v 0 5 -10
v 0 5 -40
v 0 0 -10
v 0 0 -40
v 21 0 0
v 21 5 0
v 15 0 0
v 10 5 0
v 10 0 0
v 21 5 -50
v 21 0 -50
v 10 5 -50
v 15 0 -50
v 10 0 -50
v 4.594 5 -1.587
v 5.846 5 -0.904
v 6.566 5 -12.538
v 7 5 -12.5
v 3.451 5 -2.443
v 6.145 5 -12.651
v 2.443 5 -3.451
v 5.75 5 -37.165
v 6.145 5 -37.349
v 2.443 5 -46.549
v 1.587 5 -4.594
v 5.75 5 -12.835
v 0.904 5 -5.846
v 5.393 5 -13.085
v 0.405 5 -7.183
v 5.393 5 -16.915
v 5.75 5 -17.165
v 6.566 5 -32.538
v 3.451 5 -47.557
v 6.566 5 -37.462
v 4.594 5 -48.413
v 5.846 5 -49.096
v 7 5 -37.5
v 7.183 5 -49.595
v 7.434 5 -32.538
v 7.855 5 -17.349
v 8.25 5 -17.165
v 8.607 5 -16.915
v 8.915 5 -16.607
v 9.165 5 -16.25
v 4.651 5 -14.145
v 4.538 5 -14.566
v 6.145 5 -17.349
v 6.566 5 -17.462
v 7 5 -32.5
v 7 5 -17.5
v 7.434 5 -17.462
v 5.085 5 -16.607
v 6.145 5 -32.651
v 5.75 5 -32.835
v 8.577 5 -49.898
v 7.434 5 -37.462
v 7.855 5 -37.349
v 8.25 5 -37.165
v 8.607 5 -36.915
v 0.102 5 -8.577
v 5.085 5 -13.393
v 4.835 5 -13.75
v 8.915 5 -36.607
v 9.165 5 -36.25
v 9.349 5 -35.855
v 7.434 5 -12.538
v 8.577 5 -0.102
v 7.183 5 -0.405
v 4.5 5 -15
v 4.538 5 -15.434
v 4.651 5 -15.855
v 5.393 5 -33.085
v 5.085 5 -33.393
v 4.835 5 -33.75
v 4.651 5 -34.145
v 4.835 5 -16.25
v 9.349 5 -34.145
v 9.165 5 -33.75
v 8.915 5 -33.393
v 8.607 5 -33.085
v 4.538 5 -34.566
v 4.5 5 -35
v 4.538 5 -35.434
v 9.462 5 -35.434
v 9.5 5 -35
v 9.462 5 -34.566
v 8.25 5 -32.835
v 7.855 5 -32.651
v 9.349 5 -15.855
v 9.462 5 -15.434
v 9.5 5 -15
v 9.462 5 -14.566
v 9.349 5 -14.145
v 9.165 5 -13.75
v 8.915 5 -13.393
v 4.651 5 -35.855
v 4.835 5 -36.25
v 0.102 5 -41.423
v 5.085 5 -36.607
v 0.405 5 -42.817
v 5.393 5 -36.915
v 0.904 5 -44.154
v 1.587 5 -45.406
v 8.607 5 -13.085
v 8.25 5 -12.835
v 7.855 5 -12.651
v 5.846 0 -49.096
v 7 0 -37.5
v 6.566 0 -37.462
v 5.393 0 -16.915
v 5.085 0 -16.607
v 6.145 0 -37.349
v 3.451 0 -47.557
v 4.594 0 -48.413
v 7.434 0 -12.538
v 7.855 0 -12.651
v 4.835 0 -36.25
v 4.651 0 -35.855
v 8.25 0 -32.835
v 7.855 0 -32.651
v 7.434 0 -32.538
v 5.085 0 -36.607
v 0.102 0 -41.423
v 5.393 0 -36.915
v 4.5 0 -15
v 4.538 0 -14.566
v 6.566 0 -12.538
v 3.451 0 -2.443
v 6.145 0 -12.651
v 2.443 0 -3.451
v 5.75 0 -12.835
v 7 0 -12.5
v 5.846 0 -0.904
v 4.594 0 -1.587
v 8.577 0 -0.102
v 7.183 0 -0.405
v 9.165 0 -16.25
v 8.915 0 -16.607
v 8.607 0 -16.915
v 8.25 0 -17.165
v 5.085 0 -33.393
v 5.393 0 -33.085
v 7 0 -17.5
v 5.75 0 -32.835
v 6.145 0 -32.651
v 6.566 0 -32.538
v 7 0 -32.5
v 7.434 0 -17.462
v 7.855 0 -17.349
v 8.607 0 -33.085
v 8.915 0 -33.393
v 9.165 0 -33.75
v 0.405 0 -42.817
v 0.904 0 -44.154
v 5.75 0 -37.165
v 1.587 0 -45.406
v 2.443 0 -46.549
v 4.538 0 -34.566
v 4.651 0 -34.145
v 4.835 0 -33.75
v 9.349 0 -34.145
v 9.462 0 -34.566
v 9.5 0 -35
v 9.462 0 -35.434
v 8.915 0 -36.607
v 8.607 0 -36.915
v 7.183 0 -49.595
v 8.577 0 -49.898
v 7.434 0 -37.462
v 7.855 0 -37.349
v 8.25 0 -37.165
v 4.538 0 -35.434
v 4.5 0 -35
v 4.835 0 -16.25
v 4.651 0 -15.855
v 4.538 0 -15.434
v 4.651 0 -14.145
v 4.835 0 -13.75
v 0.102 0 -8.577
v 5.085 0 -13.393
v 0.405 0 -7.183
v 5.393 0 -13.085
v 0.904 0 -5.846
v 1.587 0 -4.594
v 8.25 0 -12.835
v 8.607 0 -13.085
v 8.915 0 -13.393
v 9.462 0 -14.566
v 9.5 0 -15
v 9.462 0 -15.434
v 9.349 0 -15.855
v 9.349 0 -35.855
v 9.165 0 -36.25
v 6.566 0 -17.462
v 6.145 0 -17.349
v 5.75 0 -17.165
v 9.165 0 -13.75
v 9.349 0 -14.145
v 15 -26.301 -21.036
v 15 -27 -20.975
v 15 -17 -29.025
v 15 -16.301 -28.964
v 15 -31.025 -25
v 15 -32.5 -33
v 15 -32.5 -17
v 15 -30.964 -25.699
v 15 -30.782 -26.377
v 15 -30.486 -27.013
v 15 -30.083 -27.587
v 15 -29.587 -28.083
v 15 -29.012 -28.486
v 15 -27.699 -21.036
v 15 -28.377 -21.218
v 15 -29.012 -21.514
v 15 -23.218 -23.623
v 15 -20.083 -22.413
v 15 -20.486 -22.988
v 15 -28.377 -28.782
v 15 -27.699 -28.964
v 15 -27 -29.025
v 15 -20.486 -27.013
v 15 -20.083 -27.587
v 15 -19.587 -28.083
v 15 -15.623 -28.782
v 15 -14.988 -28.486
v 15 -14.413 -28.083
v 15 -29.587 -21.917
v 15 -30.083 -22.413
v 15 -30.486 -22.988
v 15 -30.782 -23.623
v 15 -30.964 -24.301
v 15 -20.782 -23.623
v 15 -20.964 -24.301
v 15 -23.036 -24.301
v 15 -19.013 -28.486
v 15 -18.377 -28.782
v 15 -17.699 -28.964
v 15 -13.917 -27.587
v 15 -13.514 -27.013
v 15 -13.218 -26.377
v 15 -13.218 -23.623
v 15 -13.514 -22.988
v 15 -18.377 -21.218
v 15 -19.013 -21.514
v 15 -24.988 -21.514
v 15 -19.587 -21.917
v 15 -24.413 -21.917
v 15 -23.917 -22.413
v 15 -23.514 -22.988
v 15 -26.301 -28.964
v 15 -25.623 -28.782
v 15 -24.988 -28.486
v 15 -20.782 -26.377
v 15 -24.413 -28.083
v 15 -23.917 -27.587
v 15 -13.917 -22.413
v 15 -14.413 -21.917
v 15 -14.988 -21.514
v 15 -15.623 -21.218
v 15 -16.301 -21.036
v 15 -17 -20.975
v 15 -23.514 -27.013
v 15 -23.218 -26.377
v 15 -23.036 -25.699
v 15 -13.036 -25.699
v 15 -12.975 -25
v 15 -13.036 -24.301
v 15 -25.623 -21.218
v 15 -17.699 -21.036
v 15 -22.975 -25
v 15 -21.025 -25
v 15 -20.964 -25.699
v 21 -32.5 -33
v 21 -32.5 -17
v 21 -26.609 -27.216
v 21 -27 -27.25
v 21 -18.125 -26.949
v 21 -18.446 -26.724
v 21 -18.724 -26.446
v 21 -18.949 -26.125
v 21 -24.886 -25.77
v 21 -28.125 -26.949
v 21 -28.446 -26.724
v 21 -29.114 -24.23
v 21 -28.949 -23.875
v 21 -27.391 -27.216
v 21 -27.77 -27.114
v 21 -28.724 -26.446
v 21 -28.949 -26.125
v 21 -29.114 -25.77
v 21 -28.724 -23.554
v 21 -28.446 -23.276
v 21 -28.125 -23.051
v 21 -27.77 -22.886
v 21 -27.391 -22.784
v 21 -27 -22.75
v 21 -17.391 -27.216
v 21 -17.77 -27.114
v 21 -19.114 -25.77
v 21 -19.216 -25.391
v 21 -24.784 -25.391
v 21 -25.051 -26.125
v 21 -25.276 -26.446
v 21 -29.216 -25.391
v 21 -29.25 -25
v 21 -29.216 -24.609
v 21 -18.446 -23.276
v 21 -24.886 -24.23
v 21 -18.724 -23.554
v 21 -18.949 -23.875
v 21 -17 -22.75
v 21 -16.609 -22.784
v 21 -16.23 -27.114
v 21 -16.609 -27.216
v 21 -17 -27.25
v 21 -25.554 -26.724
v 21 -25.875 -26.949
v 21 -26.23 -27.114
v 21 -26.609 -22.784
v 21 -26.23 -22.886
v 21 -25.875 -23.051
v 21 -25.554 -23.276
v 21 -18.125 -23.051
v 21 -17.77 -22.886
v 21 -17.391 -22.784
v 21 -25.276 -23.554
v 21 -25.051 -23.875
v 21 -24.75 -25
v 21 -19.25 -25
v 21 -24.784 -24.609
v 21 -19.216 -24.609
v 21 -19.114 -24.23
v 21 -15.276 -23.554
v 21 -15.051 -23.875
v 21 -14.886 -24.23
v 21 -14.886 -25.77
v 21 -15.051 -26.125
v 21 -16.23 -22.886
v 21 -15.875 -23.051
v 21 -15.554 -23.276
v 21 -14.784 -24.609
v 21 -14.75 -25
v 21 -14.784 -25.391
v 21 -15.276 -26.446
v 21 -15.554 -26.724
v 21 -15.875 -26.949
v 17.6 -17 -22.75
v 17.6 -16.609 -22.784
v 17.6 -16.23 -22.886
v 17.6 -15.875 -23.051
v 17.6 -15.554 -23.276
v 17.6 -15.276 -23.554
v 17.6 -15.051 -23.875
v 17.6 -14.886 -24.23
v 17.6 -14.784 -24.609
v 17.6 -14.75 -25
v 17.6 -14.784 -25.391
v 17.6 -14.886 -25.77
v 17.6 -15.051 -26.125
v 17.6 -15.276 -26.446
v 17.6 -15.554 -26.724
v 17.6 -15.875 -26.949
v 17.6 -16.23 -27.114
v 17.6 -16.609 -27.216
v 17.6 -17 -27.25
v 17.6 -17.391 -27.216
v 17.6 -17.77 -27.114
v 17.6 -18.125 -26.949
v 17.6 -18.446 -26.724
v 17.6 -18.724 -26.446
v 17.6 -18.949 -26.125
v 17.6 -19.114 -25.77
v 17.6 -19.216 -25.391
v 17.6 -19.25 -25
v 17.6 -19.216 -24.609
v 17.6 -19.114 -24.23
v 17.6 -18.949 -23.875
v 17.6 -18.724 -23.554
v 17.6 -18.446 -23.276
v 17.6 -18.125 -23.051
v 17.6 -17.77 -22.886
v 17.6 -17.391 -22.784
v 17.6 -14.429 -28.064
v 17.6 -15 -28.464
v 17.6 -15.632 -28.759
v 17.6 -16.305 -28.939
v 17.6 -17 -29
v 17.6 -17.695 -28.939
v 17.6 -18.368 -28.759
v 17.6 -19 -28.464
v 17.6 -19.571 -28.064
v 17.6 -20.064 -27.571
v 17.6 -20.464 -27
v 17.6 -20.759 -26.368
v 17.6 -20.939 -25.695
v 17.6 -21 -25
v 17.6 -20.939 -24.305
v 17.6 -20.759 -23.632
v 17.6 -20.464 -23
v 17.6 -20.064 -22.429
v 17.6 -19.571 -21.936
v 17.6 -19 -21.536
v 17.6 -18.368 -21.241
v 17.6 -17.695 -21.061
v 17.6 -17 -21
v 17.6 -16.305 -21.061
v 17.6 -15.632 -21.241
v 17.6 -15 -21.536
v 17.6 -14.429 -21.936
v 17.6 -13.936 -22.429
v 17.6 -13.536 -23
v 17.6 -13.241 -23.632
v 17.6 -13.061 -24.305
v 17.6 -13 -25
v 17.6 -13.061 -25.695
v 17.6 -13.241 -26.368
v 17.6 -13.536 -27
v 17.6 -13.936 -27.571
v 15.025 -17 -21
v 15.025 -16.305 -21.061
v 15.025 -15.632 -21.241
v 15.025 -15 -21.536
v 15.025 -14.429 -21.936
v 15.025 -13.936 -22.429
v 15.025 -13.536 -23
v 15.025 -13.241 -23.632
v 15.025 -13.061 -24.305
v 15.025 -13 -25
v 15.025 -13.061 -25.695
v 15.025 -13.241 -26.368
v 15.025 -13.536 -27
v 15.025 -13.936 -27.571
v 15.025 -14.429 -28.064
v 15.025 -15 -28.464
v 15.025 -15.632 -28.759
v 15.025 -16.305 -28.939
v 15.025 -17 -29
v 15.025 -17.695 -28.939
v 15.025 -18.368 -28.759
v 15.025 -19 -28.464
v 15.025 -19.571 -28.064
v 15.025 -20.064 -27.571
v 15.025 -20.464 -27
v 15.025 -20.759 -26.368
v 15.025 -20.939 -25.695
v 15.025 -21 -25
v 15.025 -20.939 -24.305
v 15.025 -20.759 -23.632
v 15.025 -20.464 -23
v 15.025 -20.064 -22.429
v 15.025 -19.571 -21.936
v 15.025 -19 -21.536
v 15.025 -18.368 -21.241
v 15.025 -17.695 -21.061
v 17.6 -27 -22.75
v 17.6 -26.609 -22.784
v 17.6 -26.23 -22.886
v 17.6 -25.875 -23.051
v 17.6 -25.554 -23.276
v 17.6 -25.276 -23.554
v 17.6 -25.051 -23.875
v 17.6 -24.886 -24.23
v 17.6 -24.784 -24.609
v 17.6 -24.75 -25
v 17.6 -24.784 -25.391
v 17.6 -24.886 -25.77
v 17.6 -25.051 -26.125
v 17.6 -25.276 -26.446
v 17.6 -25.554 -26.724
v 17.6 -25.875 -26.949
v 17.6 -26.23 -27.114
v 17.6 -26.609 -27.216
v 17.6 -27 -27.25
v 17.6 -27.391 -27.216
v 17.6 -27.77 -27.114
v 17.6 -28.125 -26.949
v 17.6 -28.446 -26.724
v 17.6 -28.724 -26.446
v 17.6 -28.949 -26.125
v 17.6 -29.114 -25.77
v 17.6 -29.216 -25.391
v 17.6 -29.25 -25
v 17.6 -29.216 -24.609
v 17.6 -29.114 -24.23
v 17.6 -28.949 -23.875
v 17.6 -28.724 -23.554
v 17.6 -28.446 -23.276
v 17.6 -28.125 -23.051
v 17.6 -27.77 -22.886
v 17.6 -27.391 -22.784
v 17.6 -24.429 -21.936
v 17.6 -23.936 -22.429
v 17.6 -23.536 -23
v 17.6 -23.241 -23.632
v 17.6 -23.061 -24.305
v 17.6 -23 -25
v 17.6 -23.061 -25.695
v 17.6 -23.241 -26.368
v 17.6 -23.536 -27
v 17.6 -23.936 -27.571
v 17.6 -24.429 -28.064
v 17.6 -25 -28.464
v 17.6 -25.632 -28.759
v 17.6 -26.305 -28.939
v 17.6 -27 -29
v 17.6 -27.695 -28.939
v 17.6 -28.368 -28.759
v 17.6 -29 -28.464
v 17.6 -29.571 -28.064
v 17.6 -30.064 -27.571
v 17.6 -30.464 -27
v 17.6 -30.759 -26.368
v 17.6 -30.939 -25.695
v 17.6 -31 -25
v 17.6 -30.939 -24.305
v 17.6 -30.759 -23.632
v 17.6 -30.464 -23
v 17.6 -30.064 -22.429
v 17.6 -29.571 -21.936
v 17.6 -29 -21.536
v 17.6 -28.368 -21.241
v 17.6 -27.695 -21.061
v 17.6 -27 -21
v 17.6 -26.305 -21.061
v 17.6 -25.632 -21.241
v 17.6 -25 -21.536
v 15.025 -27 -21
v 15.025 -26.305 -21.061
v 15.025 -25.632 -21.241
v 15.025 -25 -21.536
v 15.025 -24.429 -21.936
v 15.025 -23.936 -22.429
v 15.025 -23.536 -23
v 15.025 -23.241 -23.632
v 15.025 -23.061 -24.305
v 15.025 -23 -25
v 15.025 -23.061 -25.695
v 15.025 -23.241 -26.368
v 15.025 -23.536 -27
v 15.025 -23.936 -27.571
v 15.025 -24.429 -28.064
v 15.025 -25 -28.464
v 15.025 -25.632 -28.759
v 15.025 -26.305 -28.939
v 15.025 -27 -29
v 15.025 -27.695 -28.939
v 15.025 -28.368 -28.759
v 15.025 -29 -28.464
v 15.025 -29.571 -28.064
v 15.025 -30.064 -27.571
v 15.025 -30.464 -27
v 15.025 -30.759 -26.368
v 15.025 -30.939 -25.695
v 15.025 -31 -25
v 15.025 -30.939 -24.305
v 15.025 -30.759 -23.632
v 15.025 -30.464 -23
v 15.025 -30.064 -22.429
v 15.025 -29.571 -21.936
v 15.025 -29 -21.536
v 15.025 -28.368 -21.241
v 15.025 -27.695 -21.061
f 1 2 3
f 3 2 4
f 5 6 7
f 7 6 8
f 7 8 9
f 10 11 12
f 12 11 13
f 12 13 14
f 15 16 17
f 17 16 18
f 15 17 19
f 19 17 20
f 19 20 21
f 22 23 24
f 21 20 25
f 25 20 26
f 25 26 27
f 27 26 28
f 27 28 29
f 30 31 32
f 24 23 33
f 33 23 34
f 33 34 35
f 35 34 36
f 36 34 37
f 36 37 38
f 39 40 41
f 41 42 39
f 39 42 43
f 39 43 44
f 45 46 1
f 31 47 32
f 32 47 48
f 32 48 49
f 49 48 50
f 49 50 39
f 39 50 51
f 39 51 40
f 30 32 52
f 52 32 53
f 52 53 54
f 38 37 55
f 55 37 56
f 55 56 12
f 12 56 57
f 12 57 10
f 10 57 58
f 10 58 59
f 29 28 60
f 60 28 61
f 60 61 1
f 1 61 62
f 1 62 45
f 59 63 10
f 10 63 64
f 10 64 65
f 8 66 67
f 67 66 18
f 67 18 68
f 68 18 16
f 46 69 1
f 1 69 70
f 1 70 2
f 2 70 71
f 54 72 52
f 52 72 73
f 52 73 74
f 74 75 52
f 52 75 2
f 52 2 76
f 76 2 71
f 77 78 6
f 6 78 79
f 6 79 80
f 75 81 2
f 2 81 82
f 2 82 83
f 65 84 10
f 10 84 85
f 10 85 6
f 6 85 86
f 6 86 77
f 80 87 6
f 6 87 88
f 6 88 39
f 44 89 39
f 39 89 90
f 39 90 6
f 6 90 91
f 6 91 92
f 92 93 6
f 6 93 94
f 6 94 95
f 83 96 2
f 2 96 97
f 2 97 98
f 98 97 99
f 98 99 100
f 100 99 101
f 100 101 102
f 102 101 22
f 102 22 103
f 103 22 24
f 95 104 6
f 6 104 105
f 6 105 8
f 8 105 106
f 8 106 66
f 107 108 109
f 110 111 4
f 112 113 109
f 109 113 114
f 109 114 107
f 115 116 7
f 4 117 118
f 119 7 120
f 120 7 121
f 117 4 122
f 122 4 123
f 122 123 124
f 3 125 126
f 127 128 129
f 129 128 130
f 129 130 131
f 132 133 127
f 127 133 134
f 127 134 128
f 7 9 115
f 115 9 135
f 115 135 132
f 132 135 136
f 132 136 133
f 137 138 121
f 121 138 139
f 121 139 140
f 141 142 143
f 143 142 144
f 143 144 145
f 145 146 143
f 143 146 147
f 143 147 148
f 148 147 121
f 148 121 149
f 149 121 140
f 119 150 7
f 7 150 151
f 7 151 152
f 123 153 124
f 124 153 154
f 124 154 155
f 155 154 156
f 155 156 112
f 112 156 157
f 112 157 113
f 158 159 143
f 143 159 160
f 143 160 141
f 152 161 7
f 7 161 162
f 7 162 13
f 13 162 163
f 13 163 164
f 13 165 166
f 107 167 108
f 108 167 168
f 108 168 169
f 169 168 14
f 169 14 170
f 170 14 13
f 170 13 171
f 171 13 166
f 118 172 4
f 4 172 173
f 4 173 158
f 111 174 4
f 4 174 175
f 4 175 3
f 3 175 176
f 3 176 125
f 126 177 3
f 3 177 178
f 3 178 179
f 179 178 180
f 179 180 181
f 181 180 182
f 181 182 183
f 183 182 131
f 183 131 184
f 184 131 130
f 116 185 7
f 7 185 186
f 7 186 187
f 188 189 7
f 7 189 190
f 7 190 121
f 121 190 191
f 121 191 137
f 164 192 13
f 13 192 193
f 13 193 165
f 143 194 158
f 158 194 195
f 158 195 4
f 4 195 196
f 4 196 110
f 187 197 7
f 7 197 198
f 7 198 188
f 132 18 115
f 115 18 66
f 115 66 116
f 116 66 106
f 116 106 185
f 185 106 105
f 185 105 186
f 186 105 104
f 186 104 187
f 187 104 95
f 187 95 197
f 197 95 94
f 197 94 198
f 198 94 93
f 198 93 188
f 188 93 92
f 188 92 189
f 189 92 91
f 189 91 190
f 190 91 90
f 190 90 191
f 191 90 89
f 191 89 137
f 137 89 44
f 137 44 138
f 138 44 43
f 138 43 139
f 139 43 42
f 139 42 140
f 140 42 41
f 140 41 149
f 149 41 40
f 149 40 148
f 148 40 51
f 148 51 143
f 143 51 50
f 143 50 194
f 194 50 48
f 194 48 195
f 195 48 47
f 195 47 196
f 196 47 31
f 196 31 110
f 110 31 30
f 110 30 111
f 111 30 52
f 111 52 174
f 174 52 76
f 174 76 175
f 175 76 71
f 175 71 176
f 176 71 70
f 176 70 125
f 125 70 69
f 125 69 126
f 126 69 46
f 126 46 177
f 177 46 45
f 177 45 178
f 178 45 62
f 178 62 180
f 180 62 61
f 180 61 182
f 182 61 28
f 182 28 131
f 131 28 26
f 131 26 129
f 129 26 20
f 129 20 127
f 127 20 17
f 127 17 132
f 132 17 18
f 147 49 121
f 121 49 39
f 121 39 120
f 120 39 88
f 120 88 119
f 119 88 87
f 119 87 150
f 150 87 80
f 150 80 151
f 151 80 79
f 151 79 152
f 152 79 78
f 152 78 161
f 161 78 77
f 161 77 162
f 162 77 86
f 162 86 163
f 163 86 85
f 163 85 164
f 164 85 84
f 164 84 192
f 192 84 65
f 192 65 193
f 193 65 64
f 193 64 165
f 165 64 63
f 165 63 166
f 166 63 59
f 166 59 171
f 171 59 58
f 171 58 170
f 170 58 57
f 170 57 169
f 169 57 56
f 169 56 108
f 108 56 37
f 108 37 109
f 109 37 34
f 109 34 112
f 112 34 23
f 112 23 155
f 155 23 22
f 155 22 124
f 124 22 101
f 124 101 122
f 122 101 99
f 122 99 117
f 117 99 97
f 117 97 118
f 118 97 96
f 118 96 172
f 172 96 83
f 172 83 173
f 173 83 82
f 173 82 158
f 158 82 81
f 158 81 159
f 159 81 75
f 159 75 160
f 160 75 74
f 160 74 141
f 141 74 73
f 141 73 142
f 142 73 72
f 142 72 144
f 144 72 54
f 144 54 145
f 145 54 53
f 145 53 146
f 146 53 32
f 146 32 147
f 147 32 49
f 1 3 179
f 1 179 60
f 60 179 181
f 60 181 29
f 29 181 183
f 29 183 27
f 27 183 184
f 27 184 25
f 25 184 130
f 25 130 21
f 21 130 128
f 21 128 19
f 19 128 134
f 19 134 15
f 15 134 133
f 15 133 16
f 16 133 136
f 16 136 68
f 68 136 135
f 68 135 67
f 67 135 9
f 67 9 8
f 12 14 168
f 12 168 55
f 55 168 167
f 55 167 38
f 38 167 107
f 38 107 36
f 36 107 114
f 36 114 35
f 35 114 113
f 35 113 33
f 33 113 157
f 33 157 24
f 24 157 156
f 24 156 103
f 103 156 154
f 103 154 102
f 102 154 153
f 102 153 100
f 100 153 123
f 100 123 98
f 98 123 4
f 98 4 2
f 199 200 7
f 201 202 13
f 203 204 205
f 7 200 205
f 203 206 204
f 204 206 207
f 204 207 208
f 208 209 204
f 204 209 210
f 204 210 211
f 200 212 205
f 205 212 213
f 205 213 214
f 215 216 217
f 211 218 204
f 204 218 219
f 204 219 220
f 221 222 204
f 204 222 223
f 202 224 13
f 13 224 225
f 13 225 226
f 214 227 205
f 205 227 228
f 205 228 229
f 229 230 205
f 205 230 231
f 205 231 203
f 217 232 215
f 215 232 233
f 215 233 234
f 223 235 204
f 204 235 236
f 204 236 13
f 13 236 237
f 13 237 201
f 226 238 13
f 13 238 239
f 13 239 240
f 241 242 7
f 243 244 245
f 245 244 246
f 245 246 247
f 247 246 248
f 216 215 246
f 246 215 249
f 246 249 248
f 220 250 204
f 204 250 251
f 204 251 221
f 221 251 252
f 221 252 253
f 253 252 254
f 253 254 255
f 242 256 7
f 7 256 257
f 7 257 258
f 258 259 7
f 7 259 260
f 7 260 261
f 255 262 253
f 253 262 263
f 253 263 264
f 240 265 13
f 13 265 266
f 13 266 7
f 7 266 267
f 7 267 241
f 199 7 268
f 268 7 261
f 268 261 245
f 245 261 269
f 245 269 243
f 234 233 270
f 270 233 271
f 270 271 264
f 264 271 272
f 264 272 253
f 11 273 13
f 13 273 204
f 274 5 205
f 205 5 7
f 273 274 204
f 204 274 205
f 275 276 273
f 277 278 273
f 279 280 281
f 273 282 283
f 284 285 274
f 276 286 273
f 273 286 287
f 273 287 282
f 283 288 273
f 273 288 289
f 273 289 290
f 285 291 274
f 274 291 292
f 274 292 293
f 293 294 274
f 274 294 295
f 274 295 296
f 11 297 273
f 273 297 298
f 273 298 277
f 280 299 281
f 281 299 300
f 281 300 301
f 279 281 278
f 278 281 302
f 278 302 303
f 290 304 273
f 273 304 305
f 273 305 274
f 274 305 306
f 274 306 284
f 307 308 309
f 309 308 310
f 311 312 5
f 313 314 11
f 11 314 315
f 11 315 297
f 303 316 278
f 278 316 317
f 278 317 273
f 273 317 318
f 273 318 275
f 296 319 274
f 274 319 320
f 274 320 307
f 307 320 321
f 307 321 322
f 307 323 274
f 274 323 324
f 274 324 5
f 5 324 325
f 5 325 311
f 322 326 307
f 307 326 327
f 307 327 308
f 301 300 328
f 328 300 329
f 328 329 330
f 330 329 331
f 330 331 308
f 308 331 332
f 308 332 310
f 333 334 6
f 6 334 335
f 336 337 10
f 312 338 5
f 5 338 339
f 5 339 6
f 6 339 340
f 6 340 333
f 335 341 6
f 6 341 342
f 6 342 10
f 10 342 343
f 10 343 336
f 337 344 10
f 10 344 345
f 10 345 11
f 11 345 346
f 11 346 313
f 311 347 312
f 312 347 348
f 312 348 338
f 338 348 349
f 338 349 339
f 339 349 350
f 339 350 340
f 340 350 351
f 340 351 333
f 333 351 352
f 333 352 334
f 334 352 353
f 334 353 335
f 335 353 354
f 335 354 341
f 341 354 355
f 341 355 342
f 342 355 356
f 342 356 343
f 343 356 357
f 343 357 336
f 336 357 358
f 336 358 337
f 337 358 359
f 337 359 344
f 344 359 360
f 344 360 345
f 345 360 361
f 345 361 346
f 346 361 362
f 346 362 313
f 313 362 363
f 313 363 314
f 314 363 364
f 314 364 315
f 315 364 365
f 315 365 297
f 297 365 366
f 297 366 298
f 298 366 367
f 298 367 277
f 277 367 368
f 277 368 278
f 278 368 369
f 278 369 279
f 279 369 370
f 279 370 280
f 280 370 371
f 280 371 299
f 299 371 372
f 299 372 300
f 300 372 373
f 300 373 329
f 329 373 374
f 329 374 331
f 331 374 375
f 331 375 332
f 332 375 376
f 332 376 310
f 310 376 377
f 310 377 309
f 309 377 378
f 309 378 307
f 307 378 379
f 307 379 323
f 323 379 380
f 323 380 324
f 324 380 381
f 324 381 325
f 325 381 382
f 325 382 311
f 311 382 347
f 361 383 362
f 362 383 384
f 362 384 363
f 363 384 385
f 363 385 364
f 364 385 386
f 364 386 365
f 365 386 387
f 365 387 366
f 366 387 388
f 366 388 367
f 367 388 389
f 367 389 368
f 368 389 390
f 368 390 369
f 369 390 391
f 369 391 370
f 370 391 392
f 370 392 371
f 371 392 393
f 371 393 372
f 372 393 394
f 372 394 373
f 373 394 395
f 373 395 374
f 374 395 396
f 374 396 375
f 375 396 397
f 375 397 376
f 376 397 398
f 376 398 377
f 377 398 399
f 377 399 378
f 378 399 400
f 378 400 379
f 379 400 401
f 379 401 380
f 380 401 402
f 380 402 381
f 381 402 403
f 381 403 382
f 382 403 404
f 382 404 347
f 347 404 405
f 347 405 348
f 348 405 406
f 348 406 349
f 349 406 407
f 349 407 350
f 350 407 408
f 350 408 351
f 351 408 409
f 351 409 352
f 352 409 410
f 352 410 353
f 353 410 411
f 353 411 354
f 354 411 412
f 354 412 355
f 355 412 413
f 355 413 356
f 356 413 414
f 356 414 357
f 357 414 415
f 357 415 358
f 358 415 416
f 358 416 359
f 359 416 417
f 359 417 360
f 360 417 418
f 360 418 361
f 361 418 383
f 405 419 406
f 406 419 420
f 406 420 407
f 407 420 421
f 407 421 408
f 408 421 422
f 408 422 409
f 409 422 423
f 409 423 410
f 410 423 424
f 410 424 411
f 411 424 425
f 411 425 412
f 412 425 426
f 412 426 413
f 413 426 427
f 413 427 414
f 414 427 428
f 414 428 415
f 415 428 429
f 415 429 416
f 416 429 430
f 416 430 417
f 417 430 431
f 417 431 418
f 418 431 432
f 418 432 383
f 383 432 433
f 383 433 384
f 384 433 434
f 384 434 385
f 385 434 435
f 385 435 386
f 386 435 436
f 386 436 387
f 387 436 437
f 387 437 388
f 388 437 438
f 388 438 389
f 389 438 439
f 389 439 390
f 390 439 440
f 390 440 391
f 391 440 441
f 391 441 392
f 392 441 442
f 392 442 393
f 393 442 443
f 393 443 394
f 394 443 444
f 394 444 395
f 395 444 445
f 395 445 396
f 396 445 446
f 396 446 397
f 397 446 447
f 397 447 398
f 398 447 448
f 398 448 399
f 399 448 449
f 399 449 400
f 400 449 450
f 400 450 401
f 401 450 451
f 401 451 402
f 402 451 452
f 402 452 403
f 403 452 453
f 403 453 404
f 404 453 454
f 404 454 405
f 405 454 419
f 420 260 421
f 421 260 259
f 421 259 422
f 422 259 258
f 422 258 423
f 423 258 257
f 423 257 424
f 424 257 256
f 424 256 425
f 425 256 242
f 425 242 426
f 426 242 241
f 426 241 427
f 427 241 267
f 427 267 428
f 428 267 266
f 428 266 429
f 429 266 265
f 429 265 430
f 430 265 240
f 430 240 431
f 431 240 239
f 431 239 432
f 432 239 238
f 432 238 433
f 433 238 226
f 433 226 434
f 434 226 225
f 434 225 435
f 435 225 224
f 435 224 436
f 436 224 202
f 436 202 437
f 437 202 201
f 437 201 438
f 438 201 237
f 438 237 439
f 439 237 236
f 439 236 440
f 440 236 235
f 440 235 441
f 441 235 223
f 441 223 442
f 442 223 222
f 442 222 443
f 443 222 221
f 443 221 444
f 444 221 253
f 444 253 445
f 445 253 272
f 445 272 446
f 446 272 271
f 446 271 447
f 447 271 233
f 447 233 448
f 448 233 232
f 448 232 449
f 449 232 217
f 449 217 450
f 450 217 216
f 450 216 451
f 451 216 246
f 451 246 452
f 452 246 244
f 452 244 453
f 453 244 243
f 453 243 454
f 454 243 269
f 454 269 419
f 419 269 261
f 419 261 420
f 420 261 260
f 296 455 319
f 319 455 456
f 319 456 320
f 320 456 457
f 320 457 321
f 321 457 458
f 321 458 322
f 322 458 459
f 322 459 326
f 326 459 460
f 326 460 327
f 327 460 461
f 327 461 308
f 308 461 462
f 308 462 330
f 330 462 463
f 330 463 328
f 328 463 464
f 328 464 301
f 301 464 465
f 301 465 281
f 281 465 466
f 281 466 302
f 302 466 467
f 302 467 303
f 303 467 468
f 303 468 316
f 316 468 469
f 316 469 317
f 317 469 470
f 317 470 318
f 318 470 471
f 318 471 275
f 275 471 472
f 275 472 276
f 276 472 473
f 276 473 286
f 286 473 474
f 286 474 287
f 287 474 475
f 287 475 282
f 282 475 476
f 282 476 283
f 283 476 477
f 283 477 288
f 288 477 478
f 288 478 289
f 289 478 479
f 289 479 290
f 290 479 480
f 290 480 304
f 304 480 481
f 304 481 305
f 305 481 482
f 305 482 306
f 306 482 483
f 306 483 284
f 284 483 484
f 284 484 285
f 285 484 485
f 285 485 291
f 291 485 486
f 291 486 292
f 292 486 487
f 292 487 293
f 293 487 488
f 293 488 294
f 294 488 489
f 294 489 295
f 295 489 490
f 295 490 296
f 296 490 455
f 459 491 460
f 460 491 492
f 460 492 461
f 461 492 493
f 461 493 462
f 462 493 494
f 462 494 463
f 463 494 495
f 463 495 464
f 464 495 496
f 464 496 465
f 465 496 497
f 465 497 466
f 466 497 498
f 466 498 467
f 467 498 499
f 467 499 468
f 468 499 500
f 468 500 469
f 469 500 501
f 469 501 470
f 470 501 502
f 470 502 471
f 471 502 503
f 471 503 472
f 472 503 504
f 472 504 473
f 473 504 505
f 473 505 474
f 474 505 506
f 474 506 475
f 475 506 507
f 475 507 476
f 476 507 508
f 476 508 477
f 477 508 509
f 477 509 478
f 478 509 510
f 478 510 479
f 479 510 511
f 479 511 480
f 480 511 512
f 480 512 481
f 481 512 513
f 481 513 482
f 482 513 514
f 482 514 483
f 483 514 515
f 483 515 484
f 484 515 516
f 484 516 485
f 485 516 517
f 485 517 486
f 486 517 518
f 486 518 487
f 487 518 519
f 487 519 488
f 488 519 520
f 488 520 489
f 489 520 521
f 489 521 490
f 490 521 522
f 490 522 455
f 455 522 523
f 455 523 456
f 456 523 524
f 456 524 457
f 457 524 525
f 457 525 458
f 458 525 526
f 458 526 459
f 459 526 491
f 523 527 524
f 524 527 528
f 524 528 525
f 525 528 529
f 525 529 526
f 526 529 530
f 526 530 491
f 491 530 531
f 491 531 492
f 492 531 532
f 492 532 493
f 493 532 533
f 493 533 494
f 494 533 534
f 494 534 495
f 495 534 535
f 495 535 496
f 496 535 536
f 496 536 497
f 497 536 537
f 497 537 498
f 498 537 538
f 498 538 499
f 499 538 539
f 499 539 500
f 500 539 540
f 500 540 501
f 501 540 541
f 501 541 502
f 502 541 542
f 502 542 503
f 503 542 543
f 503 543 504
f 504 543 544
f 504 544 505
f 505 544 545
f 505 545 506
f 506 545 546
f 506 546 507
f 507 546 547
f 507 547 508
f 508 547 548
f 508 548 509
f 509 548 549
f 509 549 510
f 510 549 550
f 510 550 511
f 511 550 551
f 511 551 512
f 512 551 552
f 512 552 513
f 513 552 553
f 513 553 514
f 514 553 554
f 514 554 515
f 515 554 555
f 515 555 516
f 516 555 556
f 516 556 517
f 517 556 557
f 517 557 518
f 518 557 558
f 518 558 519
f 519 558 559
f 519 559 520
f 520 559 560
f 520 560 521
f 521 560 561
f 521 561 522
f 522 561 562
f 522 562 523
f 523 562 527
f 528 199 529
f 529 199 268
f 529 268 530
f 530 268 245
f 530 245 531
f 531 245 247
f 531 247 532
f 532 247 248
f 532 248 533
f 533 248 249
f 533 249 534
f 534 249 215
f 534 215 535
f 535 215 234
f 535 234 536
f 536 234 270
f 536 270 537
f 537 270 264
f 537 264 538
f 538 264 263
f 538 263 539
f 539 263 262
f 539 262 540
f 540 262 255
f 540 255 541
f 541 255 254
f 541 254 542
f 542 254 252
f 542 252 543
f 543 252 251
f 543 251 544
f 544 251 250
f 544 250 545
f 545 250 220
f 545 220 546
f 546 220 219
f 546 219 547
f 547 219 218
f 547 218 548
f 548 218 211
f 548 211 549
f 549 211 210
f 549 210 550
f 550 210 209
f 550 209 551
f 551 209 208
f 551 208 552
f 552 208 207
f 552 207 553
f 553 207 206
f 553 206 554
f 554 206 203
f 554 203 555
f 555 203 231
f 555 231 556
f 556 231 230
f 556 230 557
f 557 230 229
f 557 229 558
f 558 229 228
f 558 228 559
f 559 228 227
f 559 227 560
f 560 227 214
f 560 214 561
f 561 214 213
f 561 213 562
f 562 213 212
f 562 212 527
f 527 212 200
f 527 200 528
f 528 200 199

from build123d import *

# Parameters (mm, degrees)
ESBO_O1_W                                    = 15
ESBO_O1_H                                    = 50
RESSALTO_EXTRUS_O1_DEPTH                     = 5
ESBO_O2_R                                    = 2.5
CORTE_EXTRUS_O1_DEPTH                        = 53.440442409
FILETE1_R                                    = 10
RESSALTO_EXTRUS_O2_DEPTH                     = 6
REBAIXO_PARA_PARAFUSO_COM_CABE_A_RED_2_COUNT = 2
REBAIXO_PARA_PARAFUSO_COM_CABE_A_RED_2_PITCH = 10


with BuildPart() as part:
    # Esboço1 → Ressalto-extrusão1 (new body)
    with BuildSketch(Plane(origin=(0, 0, 0), x_dir=(1, 0, 0), z_dir=(0, 1, 0))):
        with Locations((7.5, 25)):
            Rectangle(ESBO_O1_W, ESBO_O1_H)
    extrude(amount=RESSALTO_EXTRUS_O1_DEPTH)

    # Esboço2 → Corte-extrusão1 (cut, through all)
    with BuildSketch(Plane(origin=(0, 5, 0), x_dir=(1, 0, 0), z_dir=(0, 1, 0))):
        with Locations(Location((7, 35, 0), (0, 0, 270))):
            Circle(ESBO_O2_R)
        with Locations(Location((7, 15, 0), (0, 0, 270))):
            Circle(ESBO_O2_R)
    extrude(amount=-CORTE_EXTRUS_O1_DEPTH, mode=Mode.SUBTRACT)

    # Filete1
    filete1_edges = [part.edges().sort_by_distance(p)[0] for p in [
        (0, 2.5, -50),
        (0, 2.5, 0),
    ]]
    fillet(filete1_edges, radius=FILETE1_R)

    # Esboço3 → Ressalto-extrusão2 (add)
    with BuildSketch(Plane(origin=(15, 0, 0), x_dir=(0, 0, -1), z_dir=(1, 0, 0))):
        Polygon((50, 5), (0, 5), (0, 0), (17, -32.5), (33, -32.5), (50, 0), align=None)
    extrude(amount=RESSALTO_EXTRUS_O2_DEPTH)

    # Esboço6 → Rebaixo para parafuso com cabeça redonda de M41 (revolve, cut)
    with BuildSketch(Plane(origin=(15, -27, -25), x_dir=(0, 0, 1), z_dir=(0, 1, 0))):
        Polygon((0, 0), (0, 6), (2.25, 6), (2.25, 2.6), (4, 2.6), (4, 0.025), (4.025, 0), align=None)
    rebaixo_para_parafuso_com_cabe_a_redonda = revolve(axis=Axis((8.65, -27, -25), (1, 0, 0)), mode=Mode.SUBTRACT)

    # Rebaixo para parafuso com cabe_a red 2: Rebaixo para parafuso com cabeça redonda de M41 ×2
    with Locations(*[(0, i * REBAIXO_PARA_PARAFUSO_COM_CABE_A_RED_2_PITCH, 0) for i in range(1, REBAIXO_PARA_PARAFUSO_COM_CABE_A_RED_2_COUNT)]):
        add(rebaixo_para_parafuso_com_cabe_a_redonda, mode=Mode.SUBTRACT)


solid = part.part
